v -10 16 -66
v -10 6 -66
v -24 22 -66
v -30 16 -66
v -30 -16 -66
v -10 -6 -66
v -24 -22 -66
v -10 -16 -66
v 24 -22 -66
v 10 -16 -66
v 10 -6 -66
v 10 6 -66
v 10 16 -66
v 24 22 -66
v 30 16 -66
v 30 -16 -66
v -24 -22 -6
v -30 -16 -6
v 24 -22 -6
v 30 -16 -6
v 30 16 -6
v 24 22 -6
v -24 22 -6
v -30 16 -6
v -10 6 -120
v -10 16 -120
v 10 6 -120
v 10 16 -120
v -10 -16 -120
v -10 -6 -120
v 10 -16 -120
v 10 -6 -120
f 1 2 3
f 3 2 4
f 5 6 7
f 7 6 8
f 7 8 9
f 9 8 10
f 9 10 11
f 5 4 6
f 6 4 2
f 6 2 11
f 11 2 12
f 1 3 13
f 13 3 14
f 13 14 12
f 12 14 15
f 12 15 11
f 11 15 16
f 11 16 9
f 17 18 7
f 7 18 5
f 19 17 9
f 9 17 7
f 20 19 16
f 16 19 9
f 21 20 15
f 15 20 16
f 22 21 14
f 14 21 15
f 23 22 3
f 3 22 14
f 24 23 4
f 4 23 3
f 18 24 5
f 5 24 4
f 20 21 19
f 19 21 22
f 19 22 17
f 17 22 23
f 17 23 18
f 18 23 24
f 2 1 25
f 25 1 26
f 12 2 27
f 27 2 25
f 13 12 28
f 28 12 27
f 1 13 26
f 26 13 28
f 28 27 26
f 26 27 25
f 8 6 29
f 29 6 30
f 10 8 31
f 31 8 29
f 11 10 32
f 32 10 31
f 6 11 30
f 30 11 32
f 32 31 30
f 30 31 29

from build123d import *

# Parameters (mm, degrees)
BODY_DEPTH     = 60
SK_FINGER_A_W  = 20
SK_FINGER_A_H  = 10
FINGER_A_DEPTH = 54
SK_FINGER_B_W  = 20
SK_FINGER_B_H  = 10
FINGER_B_DEPTH = 54


with BuildPart() as part:
    # SK_Body → Body (new body)
    with BuildSketch(Plane.XY.offset(-66)):
        Polygon((-24, -22), (24, -22), (30, -16), (30, 16), (24, 22), (-24, 22), (-30, 16), (-30, -16), align=None)
    extrude(amount=BODY_DEPTH)

    # SK_Finger_A → Finger_A (add)
    with BuildSketch(Plane.XY.offset(-120)):
        with Locations((0, 11)):
            Rectangle(SK_FINGER_A_W, SK_FINGER_A_H)
    extrude(amount=FINGER_A_DEPTH)

    # SK_Finger_B → Finger_B (add)
    with BuildSketch(Plane.XY.offset(-120)):
        with Locations((0, -11)):
            Rectangle(SK_FINGER_B_W, SK_FINGER_B_H)
    extrude(amount=FINGER_B_DEPTH)


solid = part.part
